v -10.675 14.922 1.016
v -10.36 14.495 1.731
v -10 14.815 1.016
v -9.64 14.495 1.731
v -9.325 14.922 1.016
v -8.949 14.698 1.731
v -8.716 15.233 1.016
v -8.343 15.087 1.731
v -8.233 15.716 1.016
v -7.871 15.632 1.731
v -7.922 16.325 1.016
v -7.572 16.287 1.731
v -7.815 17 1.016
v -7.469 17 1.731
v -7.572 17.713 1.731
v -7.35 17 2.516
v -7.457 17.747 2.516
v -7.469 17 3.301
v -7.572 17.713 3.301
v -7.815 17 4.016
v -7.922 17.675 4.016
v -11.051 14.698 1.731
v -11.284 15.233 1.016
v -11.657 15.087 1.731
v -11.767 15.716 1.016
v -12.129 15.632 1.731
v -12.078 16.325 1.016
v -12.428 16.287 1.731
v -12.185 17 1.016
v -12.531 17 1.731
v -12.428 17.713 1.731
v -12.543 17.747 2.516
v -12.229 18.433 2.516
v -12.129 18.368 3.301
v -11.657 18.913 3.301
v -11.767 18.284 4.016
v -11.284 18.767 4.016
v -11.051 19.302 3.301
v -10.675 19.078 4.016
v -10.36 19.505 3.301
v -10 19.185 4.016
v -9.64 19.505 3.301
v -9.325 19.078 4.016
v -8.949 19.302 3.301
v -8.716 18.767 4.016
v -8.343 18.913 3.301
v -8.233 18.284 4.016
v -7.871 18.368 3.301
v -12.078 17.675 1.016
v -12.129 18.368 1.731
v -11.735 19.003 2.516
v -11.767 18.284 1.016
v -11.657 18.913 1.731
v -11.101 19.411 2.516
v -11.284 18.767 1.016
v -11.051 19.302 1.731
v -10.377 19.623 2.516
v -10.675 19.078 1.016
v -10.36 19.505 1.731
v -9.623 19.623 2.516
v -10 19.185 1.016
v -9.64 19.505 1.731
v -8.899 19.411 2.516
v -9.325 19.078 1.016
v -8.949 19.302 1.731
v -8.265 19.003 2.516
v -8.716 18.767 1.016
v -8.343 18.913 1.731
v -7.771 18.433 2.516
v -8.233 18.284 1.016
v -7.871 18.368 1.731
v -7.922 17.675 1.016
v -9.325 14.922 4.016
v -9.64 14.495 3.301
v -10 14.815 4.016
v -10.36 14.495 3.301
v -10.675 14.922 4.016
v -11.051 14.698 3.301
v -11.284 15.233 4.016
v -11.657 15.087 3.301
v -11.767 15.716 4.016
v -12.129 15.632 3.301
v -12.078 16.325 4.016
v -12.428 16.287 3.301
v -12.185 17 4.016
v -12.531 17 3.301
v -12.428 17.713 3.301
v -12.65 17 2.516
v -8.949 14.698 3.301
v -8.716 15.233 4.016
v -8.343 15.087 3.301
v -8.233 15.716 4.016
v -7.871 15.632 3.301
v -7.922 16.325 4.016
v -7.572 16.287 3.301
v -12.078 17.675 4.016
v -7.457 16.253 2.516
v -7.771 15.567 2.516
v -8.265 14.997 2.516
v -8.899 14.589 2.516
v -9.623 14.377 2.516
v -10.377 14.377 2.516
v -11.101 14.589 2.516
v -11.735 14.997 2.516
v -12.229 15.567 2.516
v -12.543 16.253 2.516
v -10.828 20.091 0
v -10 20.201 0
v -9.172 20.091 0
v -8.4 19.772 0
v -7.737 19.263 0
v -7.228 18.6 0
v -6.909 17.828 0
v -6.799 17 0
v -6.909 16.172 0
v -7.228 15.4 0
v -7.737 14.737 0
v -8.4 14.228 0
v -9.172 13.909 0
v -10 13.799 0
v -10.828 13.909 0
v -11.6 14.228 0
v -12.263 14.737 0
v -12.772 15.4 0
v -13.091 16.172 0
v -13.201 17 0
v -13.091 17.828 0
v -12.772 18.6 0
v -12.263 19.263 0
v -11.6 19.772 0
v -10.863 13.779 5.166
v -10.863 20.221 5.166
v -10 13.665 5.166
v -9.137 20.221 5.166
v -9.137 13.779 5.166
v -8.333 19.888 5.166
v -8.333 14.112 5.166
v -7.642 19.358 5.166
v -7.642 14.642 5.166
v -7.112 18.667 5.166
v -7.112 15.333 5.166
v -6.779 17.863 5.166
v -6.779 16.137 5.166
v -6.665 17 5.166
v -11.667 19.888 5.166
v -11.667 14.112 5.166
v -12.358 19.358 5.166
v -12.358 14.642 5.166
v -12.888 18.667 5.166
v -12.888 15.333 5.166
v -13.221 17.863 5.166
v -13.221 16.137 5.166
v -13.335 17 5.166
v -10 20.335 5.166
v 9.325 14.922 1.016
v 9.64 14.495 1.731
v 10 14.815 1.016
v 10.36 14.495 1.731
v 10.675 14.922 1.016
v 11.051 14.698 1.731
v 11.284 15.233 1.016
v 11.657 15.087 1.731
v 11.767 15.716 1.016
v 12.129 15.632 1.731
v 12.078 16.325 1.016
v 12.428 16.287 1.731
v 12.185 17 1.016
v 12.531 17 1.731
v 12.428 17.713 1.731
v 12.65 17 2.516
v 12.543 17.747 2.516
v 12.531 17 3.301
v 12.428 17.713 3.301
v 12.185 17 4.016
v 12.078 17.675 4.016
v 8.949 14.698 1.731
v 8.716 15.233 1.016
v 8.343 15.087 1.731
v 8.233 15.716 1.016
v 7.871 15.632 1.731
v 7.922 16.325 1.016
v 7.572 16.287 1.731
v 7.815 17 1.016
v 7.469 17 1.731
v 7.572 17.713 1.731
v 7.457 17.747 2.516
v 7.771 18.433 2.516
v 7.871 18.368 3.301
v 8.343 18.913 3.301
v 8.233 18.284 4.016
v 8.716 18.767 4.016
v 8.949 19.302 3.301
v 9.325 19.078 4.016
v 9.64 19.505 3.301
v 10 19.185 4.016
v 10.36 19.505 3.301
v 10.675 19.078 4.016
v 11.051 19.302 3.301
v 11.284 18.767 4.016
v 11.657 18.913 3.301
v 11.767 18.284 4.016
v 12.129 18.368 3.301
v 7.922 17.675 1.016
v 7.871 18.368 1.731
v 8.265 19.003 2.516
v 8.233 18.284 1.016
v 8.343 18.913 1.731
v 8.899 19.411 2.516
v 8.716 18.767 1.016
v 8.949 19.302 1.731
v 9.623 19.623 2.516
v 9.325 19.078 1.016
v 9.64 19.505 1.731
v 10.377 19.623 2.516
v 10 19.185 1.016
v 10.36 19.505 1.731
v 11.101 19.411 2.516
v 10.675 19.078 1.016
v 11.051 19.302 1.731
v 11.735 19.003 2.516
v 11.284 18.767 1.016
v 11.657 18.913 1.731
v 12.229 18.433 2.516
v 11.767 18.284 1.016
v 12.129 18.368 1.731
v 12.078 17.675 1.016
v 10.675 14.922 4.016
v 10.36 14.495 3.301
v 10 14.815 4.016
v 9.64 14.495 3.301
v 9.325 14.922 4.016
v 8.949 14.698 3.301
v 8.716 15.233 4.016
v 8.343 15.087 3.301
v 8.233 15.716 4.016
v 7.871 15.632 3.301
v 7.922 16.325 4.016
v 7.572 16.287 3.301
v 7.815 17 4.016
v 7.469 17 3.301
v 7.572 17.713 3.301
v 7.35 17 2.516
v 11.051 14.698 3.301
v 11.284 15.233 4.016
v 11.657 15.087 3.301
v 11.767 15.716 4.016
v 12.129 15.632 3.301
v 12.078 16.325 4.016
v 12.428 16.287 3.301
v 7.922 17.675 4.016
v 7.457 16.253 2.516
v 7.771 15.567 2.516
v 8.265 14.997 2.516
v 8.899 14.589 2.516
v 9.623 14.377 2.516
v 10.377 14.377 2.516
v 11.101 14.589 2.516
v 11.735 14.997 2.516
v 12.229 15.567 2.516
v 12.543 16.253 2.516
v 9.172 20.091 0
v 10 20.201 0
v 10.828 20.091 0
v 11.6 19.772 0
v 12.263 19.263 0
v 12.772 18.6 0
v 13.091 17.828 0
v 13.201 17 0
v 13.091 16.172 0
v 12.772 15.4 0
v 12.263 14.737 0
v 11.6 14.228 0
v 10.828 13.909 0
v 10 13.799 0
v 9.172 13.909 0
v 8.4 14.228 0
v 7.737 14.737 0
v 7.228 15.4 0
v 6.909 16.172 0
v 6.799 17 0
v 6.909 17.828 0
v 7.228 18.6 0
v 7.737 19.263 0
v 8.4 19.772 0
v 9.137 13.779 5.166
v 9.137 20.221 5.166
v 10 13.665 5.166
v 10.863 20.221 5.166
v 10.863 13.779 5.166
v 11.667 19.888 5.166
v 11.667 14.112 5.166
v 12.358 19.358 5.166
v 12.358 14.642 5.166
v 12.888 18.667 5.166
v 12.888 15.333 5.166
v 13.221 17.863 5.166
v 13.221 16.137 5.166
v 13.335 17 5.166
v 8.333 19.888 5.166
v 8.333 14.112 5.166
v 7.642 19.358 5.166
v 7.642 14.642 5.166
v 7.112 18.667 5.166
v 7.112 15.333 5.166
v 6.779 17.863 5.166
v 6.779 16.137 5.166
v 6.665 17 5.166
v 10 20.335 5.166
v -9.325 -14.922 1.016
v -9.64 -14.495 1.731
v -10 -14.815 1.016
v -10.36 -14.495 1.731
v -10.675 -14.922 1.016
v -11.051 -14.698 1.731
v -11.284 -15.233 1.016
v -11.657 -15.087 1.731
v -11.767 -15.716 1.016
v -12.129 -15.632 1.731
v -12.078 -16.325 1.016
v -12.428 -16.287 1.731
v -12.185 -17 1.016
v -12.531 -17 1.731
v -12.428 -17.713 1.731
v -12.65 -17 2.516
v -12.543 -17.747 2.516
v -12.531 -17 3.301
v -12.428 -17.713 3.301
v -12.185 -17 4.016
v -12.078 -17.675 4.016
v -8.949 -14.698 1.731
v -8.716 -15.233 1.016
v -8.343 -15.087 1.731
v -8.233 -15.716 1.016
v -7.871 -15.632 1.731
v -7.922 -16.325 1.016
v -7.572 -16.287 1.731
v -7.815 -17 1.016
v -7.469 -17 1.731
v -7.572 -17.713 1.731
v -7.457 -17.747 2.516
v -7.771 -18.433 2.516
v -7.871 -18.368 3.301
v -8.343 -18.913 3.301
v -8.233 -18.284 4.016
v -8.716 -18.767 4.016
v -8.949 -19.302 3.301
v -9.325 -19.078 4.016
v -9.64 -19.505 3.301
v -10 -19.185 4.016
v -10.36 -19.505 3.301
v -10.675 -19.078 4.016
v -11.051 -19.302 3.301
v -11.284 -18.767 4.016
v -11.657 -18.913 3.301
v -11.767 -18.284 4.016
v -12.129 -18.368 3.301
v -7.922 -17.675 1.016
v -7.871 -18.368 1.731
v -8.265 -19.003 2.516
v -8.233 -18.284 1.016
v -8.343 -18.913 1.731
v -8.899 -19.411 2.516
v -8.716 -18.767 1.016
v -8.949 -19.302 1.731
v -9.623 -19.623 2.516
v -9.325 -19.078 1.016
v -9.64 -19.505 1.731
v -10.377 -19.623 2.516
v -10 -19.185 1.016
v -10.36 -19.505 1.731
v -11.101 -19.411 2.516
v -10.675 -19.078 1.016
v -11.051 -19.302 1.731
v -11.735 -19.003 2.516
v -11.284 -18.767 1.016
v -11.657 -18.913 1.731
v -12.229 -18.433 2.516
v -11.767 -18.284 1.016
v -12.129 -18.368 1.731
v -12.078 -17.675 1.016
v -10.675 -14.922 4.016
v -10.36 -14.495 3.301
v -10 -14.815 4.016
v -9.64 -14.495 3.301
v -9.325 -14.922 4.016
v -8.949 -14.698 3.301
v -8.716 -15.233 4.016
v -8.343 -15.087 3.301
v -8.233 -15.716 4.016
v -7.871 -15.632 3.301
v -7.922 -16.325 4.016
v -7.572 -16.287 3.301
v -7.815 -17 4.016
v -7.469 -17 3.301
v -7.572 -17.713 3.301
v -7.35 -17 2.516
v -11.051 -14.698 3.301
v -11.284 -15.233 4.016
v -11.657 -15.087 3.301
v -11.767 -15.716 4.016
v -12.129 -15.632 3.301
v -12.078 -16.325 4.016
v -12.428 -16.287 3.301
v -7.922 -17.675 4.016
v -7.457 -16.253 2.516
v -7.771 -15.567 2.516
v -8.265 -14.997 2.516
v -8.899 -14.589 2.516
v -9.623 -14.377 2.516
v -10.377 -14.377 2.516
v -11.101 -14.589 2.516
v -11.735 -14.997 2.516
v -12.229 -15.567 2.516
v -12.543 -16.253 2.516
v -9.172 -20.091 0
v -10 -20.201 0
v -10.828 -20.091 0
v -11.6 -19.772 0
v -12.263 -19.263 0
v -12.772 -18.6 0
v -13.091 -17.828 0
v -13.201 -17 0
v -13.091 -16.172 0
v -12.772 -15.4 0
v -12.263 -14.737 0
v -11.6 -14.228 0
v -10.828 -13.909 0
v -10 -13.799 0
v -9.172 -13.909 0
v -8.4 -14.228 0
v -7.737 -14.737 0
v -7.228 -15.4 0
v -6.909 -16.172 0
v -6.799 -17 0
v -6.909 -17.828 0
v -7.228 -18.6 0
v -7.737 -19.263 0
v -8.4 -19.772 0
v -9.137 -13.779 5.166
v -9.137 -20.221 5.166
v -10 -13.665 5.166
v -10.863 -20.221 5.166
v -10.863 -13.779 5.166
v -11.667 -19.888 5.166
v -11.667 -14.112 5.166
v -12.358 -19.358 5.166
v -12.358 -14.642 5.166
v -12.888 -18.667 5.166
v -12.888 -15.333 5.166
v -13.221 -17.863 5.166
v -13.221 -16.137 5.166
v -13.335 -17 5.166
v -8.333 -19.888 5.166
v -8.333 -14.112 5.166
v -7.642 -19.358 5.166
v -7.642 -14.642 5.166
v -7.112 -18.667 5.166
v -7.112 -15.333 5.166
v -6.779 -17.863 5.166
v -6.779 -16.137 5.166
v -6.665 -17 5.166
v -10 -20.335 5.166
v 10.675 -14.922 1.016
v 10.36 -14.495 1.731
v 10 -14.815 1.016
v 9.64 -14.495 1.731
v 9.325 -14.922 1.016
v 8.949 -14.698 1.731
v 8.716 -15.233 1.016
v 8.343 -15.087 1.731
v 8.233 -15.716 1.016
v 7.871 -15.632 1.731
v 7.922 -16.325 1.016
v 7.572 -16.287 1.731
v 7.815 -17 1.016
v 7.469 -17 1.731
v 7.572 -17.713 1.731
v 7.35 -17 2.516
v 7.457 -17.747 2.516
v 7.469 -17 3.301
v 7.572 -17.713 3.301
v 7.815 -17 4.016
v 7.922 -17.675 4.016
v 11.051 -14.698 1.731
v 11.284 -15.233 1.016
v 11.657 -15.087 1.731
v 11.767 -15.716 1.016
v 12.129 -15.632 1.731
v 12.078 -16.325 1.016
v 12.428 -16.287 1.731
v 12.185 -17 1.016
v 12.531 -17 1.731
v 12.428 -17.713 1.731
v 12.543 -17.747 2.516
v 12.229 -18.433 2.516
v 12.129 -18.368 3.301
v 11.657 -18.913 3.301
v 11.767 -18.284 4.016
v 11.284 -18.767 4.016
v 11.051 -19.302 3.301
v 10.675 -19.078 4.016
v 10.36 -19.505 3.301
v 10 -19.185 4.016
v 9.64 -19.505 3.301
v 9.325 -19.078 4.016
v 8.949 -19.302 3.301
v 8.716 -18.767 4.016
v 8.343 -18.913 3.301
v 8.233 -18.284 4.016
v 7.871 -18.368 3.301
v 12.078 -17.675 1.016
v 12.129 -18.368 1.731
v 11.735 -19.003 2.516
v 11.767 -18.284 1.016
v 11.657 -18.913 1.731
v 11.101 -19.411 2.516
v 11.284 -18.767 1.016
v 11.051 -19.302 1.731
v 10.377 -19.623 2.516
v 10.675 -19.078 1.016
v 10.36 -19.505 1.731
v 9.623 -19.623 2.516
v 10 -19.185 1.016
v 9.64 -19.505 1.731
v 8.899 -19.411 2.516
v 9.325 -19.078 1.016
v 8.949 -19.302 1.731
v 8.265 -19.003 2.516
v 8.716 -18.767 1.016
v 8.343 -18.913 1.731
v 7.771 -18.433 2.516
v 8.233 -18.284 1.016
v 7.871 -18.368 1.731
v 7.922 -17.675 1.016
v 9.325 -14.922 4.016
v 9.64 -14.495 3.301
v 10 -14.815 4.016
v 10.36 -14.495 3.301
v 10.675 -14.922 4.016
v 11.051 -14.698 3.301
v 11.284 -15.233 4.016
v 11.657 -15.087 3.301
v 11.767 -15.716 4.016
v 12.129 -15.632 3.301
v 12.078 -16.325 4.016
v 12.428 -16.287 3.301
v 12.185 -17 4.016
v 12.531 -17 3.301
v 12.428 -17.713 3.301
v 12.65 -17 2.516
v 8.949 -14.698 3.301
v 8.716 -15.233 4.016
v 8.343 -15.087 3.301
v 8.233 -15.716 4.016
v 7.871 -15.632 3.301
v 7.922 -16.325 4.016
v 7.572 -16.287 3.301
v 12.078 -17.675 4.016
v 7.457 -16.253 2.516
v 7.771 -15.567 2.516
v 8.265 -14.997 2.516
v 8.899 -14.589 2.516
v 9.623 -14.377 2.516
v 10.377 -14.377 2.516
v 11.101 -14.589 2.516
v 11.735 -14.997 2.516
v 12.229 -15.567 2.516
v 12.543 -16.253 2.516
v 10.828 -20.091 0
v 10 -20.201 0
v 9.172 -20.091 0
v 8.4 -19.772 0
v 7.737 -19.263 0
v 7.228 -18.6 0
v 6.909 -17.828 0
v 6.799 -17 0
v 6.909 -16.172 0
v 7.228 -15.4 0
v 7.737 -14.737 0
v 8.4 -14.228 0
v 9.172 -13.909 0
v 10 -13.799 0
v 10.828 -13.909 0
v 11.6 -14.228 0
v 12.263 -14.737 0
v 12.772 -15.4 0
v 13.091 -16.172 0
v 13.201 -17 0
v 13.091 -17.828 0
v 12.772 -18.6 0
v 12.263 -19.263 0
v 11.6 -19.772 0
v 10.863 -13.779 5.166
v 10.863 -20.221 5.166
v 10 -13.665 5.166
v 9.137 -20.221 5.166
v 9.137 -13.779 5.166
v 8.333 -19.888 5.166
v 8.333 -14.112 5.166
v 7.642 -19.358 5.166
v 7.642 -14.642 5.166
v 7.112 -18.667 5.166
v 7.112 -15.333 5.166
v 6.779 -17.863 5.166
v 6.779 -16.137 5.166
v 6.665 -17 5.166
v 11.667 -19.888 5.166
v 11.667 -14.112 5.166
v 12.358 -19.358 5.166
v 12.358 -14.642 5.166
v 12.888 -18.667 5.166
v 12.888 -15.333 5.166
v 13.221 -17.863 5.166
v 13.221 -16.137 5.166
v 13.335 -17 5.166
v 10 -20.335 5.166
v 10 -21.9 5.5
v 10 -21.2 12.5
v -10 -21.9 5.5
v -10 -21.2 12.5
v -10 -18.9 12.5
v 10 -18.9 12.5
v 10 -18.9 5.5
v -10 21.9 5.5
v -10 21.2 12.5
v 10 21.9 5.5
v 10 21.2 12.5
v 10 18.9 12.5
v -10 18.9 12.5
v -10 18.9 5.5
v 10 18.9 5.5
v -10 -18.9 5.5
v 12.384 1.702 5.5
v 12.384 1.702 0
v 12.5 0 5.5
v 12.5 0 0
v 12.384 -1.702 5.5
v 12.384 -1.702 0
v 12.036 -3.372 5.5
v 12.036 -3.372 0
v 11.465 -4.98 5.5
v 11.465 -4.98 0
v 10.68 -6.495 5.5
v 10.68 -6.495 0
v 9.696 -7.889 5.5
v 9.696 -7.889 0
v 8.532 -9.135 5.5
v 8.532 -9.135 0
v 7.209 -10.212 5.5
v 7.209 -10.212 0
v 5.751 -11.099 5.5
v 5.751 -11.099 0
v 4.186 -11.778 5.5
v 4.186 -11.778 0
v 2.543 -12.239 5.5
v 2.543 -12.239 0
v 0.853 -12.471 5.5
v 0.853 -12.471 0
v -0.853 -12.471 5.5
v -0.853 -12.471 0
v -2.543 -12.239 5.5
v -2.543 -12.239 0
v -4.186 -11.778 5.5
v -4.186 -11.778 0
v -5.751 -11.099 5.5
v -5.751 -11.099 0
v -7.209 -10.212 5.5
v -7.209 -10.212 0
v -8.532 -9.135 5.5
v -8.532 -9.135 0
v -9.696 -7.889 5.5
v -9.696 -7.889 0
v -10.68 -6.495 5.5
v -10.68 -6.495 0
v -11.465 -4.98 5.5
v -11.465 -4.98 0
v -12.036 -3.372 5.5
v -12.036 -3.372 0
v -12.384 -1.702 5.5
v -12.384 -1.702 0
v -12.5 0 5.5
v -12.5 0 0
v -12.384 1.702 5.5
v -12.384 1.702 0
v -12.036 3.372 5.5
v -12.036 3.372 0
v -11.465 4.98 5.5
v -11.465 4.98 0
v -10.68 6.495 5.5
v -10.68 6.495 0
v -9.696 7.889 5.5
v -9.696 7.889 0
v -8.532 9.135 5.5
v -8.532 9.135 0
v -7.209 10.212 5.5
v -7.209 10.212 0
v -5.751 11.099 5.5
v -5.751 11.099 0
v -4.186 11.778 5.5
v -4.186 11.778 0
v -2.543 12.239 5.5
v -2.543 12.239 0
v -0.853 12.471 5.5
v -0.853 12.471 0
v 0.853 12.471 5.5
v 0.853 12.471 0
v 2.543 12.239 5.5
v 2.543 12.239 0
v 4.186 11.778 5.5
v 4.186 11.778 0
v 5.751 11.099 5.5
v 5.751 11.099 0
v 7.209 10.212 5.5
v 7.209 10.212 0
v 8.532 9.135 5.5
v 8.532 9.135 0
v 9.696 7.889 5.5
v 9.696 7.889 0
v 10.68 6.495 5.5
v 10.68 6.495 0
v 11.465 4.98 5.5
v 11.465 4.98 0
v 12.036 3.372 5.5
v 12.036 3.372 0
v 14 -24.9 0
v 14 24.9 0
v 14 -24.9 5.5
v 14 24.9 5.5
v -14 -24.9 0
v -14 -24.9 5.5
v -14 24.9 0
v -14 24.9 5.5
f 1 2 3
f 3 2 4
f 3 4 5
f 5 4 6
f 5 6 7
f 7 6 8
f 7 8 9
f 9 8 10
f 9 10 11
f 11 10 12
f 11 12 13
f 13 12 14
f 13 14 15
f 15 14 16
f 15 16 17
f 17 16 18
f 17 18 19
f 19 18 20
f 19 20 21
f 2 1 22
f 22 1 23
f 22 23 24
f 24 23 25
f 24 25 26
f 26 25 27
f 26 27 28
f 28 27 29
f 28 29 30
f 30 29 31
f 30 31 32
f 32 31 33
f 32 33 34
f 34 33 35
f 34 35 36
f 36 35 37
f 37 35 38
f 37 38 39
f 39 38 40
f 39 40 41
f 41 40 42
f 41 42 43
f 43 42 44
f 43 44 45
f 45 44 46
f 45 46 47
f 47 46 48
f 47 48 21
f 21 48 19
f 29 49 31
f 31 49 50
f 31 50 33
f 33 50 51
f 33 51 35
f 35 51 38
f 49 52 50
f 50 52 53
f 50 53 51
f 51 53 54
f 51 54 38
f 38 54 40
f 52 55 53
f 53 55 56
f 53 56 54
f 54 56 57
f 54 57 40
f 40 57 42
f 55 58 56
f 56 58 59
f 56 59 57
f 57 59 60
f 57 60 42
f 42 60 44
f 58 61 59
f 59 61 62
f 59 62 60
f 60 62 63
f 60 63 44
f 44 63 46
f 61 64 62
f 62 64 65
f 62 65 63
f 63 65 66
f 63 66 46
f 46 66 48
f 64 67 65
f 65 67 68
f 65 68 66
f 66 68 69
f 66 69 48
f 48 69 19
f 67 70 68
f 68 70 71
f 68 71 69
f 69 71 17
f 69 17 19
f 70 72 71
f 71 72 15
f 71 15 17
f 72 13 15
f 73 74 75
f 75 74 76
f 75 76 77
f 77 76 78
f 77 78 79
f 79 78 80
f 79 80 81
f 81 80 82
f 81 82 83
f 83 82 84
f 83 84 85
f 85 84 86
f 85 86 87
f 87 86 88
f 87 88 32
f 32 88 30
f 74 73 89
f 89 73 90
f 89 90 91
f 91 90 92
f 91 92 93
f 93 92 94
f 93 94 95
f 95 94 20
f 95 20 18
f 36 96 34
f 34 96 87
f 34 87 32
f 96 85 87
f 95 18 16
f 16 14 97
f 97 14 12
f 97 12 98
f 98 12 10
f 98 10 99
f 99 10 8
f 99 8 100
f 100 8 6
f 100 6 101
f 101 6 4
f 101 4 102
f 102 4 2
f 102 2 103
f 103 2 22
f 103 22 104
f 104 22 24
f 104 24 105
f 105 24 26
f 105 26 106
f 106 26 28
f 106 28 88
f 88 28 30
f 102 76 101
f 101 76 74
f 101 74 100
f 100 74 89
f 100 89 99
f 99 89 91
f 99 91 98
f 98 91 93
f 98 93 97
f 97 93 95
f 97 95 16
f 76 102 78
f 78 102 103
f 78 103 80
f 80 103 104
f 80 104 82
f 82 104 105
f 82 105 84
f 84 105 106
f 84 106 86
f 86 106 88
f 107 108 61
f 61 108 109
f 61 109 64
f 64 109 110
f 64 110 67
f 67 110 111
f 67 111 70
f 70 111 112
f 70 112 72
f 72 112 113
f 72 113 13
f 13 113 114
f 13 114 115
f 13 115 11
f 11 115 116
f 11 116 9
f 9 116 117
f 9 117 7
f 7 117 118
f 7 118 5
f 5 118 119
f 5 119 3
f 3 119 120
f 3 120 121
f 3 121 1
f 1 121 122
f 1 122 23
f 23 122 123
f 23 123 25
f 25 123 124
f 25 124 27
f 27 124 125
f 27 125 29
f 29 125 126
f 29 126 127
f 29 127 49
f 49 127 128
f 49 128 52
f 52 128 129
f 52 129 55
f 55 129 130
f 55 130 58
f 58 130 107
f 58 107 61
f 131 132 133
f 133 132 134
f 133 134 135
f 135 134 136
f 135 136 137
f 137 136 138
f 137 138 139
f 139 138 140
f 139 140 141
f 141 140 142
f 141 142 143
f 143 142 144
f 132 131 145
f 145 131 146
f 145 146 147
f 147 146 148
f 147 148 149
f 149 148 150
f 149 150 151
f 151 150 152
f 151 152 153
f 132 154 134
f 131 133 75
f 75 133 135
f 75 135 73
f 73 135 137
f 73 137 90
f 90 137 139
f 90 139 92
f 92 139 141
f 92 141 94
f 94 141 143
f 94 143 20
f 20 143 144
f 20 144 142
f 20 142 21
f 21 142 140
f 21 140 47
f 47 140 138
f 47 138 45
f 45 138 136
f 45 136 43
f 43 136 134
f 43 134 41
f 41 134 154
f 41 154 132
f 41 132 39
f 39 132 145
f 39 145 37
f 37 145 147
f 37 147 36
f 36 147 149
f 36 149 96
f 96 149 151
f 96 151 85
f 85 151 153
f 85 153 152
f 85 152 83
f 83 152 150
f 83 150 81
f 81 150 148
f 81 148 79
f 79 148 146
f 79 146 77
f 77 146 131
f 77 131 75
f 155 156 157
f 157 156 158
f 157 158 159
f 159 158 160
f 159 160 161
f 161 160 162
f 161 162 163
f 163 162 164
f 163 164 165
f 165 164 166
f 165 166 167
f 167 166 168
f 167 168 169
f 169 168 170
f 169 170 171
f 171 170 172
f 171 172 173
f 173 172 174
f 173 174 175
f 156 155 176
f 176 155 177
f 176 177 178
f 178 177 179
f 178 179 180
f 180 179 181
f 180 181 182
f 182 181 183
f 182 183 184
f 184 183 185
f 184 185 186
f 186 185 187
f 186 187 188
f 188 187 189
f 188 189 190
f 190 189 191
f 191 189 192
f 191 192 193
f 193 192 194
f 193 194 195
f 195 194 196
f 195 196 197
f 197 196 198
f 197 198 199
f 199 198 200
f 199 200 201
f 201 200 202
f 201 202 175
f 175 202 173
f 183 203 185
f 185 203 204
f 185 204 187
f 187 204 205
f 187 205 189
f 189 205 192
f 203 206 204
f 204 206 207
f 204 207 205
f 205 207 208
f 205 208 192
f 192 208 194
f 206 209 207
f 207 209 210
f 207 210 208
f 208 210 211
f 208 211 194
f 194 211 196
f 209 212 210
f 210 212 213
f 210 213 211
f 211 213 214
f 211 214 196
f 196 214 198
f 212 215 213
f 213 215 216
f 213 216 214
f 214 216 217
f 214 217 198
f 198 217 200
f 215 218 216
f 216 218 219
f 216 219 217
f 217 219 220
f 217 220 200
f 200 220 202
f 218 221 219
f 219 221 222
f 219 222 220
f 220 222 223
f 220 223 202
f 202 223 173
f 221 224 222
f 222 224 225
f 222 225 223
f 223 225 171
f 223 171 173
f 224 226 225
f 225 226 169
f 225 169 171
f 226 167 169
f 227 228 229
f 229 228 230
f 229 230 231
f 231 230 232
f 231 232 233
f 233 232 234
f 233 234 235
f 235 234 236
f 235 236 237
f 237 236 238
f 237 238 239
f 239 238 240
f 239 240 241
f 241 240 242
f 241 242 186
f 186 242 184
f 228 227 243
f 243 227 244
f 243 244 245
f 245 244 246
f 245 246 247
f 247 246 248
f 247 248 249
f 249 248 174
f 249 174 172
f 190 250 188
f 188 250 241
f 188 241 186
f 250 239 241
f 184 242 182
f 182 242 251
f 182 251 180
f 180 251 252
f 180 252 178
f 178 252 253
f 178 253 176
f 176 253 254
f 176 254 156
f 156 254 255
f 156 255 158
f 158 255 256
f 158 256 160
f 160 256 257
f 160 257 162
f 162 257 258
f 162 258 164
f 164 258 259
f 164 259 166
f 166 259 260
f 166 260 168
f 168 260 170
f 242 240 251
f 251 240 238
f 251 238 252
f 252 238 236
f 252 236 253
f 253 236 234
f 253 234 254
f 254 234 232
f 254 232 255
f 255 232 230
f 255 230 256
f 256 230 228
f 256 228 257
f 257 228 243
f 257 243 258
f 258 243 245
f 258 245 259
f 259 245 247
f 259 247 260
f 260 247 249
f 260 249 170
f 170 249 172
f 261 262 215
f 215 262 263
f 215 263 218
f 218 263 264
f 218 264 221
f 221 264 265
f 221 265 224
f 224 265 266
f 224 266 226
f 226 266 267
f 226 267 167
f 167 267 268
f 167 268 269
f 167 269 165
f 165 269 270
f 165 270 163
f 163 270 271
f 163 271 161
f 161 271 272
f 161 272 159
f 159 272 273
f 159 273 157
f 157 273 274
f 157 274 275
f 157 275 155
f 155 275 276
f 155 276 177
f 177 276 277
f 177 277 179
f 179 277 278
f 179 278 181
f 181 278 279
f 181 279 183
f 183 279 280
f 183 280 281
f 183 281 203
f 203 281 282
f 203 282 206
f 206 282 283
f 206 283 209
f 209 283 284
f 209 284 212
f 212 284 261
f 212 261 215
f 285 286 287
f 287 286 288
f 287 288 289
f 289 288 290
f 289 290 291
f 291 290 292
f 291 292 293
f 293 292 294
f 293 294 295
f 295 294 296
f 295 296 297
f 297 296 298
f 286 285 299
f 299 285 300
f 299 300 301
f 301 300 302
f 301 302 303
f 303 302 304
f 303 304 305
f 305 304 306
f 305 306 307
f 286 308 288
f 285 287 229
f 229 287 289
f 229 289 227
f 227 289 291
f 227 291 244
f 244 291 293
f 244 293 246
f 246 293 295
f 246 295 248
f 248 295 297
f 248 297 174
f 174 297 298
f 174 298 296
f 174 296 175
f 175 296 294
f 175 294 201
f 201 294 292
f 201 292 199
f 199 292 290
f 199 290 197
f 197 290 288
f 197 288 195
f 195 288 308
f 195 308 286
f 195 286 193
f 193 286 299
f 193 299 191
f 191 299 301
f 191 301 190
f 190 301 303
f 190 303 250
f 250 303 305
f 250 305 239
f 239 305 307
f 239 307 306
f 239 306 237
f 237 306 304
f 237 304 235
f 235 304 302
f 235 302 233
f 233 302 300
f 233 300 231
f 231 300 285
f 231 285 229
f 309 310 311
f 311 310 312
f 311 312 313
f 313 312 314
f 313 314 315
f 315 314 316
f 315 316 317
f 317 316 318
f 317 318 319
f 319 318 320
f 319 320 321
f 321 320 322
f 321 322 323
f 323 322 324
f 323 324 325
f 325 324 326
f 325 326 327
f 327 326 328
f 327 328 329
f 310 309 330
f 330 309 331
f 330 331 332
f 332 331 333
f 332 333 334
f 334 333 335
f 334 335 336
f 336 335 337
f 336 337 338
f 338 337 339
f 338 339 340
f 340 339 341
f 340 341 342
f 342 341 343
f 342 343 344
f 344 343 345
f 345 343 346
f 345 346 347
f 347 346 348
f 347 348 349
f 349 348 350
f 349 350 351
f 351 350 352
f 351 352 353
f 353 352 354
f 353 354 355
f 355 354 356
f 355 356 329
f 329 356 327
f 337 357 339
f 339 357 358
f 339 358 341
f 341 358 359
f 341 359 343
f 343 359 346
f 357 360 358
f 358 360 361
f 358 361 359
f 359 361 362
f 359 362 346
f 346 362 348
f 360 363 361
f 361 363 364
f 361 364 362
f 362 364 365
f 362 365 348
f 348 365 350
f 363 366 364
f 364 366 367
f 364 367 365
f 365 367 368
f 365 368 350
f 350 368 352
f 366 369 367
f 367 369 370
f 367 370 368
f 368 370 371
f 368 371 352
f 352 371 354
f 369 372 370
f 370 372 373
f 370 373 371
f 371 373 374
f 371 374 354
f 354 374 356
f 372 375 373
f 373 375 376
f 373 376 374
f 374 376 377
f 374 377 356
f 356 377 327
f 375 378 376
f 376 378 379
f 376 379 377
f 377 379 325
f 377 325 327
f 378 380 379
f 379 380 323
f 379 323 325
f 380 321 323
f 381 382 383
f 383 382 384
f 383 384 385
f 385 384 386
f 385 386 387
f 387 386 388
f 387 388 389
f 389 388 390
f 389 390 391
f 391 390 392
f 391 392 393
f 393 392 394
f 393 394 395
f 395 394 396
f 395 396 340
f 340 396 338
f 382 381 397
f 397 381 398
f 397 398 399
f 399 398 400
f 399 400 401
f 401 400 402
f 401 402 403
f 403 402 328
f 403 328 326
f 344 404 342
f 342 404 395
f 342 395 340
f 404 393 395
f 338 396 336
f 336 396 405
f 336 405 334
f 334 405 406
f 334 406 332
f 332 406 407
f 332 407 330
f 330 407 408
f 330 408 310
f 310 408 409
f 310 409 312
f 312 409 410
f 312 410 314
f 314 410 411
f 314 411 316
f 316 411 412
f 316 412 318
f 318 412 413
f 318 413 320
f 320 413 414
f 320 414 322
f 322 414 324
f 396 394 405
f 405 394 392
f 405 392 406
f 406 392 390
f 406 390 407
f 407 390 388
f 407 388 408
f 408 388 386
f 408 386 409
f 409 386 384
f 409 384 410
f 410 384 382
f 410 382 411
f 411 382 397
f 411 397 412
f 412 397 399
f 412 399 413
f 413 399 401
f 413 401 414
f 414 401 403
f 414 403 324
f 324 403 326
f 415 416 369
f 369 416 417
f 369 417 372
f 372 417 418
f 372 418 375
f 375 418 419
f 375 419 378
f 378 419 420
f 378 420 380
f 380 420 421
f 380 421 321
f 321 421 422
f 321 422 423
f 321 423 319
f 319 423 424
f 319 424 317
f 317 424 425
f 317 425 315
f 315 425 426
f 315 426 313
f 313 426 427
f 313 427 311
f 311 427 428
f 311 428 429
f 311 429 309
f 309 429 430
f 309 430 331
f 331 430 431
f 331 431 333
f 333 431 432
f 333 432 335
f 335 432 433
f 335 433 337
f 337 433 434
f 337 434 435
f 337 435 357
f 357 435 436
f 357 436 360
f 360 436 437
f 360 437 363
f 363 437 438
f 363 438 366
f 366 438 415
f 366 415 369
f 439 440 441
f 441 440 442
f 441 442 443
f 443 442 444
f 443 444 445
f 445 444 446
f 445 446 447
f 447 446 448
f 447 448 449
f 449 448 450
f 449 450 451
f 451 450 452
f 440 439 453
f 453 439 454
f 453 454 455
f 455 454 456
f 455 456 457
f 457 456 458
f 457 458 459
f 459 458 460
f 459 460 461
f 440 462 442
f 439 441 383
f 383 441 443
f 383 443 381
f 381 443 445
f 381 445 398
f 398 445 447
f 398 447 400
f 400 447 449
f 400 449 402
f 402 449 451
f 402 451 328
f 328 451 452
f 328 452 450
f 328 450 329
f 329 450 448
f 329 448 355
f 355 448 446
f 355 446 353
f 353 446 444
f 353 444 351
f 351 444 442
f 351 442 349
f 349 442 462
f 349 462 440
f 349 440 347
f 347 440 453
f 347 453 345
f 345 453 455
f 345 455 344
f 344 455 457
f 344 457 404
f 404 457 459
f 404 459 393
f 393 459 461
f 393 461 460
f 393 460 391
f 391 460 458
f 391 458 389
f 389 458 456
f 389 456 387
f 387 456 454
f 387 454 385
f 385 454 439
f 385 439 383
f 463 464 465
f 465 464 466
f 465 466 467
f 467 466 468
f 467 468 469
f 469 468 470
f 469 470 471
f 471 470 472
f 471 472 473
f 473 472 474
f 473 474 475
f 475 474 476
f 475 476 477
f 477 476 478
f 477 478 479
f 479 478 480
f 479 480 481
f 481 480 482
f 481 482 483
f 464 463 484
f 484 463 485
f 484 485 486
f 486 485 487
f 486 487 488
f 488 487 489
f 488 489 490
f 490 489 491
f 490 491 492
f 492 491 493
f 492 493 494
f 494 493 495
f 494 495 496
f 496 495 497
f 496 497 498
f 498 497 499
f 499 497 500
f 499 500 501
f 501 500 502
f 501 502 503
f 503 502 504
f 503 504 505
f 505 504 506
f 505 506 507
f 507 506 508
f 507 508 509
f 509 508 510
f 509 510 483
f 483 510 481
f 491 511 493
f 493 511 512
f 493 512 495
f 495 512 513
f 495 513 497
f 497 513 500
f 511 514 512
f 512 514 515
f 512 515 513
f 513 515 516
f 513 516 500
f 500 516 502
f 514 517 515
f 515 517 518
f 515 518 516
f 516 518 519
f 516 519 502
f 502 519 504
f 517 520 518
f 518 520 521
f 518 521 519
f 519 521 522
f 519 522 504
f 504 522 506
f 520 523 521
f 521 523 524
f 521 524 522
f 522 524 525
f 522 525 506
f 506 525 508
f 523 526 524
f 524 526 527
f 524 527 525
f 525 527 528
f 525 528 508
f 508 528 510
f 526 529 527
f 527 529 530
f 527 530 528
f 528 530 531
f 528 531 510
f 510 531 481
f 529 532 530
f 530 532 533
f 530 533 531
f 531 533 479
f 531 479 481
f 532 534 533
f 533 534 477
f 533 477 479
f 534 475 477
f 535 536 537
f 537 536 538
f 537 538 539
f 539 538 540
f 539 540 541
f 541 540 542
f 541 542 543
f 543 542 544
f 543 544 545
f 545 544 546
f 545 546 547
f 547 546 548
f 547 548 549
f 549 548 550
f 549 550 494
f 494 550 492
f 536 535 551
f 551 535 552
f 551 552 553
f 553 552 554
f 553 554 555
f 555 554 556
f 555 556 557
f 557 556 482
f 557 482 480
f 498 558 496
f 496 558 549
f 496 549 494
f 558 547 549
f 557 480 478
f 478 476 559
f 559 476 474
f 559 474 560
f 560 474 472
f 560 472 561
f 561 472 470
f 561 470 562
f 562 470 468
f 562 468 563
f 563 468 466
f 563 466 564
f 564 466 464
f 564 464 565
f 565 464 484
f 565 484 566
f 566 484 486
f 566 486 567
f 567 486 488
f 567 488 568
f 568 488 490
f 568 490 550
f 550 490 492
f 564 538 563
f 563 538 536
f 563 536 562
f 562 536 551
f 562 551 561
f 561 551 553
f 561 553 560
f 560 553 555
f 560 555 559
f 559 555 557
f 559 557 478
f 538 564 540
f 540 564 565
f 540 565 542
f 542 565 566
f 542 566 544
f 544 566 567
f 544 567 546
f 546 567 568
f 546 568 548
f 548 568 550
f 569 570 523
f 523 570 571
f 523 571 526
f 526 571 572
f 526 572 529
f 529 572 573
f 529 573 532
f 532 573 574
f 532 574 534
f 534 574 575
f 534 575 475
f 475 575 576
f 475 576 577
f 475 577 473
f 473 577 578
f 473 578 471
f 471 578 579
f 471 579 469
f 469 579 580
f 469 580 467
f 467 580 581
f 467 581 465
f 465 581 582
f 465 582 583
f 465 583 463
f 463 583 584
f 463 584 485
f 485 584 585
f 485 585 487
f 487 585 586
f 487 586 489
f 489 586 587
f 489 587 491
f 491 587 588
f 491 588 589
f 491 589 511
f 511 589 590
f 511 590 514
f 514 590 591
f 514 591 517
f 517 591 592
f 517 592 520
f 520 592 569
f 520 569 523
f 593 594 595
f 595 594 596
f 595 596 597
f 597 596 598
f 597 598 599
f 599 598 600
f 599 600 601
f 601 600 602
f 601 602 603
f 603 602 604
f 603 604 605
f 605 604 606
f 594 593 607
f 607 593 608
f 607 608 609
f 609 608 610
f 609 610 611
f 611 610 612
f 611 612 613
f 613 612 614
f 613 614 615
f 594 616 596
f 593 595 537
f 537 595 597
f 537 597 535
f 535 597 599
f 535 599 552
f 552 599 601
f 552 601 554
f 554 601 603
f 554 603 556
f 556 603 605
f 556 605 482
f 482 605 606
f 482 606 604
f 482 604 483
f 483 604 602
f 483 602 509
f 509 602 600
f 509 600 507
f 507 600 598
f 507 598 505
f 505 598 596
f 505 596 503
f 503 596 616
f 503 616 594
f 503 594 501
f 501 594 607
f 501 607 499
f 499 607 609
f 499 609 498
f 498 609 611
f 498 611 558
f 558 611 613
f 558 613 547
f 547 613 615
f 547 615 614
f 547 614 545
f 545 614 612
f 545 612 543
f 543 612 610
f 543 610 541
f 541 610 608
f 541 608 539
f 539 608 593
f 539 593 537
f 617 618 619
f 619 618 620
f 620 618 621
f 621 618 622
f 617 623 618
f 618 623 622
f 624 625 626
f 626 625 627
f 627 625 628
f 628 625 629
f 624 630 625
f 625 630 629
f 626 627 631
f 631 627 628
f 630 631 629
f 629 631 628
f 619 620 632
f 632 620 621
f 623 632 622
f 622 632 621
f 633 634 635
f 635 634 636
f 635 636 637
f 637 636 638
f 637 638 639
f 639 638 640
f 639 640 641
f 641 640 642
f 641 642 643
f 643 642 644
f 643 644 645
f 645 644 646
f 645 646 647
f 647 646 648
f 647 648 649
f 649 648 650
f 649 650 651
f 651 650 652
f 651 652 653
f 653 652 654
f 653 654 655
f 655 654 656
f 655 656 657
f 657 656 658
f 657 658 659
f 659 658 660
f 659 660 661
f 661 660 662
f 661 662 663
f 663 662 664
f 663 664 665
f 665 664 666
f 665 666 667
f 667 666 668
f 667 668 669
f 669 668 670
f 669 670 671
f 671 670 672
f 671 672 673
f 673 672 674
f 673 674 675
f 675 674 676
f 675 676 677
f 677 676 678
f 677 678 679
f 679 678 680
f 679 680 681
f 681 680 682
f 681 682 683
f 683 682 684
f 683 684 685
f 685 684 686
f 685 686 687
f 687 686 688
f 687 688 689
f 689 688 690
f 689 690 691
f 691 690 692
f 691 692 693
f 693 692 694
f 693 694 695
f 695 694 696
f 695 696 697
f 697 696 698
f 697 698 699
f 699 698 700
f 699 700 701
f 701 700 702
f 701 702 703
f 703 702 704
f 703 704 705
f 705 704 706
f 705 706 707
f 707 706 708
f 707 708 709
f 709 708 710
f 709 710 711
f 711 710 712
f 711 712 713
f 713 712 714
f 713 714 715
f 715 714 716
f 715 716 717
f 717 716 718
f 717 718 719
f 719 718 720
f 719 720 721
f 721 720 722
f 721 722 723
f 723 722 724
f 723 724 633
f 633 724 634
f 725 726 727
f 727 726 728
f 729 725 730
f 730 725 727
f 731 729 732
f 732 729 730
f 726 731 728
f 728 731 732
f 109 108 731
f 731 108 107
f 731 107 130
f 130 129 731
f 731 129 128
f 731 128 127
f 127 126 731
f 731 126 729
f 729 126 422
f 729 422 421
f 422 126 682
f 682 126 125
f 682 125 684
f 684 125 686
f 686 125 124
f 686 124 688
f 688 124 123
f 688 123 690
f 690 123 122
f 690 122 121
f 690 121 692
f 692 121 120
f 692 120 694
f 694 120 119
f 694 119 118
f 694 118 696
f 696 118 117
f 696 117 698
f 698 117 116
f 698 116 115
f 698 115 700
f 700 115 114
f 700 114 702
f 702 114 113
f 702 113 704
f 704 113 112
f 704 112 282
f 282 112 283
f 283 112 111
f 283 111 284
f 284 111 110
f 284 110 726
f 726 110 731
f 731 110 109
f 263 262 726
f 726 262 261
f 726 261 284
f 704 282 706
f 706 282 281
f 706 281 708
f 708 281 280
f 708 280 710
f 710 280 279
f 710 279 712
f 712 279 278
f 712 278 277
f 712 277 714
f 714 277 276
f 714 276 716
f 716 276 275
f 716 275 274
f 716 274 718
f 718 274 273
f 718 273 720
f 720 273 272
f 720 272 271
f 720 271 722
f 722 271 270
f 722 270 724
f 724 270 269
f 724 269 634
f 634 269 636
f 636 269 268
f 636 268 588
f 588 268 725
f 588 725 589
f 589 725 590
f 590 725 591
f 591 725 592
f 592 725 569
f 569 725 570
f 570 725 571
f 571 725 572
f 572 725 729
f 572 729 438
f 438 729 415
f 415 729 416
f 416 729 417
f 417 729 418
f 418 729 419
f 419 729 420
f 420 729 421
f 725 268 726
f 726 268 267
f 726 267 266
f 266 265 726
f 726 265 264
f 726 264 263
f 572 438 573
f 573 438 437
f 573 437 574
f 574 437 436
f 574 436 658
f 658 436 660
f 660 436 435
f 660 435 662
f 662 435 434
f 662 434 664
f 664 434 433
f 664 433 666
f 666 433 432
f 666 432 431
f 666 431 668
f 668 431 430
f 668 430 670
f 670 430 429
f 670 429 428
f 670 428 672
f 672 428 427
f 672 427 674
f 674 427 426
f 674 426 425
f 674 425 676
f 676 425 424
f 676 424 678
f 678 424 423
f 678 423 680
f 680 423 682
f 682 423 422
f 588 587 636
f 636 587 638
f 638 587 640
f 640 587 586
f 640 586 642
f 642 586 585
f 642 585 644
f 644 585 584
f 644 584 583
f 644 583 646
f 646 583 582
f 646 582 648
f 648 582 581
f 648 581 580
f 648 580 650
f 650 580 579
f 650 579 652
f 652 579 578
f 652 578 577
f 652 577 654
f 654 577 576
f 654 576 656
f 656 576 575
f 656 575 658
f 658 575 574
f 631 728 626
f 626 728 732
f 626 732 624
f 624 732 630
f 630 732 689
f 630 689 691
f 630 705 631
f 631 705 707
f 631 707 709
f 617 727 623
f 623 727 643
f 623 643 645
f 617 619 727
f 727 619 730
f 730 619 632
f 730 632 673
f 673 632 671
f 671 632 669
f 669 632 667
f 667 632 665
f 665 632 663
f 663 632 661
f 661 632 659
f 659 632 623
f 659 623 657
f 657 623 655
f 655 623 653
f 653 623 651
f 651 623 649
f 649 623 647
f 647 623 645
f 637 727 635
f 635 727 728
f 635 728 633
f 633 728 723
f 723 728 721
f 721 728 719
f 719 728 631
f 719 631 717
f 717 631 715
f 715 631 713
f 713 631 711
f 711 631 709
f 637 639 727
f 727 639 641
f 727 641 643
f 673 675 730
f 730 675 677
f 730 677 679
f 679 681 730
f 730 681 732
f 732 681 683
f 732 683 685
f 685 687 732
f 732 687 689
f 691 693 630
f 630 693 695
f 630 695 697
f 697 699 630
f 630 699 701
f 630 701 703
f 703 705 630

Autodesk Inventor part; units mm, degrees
ref_plane "XZ Plane" through (0, 0, 0) normal (0, 1, 0) x (-1, 0, 0)
ref_plane "XY Plane" through (0, 0, 0) normal (0, 0, 1) x (1, 0, 0)
sketch "Sketch1" plane through (0, 0, 0) normal (0, 0, 1) x (1, 0, 0)
  line L0 (0, -35.8) -> (0, 40.5) construction
  line L1 (0, 0) -> (11.1575, 11.1575) construction
  line L2 (0, 0) -> (15.7791, 0) construction
  line L3 (0, 24.9) -> (14, 24.9)
  line L4 (14, 24.9) -> (14, 21.2415)
  line L5 (2.8009, -24.9) -> (14, -24.9)
  line L6 (14, -24.9) -> (14, -21.2415)
  line L7 (0, 24.9) -> (-14, 24.9)
  line L8 (-14, 24.9) -> (-14, 21.2415)
  line L9 (2.8009, -24.9) -> (-14, -24.9)
  line L10 (-14, -24.9) -> (-14, -21.2415)
  circle A0 centre (0, 0) radius 12.5
  line L11 (14, 24.9) -> (14, -21.2415)
  line L12 (-14, 21.2415) -> (-14, -21.2415)
  dimension "d0" = 45
  dimension "d5" = 25
  dimension "d19" = 28
extrude "Extrusion1" add sketch "Sketch1" along normal blind 5.5
sketch "Sketch2" plane through (0, 0, 5.5) normal (0, 0, 1) x (1, 0, 0)
  circle A0 centre (0, 0) radius 12.5 projected
  line L0 (14, 24.9) -> (-14, 24.9) projected
  line L1 (-14, 24.9) -> (-14, -24.9) projected
  line L2 (-14, -24.9) -> (14, -24.9) projected
  line L3 (14, -24.9) -> (14, 24.9) projected
  line L4 (-37.0494, 0) -> (27.1749, 0) construction
  line L5 (0, -35.8) -> (0, 40.5) construction
  line L6 (-10, 21.9) -> (10, 21.9)
  line L7 (10, 21.9) -> (10, 18.9)
  line L8 (10, 18.9) -> (-10, 18.9)
  line L9 (-10, 18.9) -> (-10, 21.9)
  line L10 (-10, -21.9) -> (10, -21.9)
  line L11 (10, -21.9) -> (10, -18.9)
  line L12 (10, -18.9) -> (-10, -18.9)
  line L13 (-10, -18.9) -> (-10, -21.9)
  dimension "d8" = 20
  dimension "d9" = 3
  dimension "d10" = 3
  dimension "d20" = 18.9
  dimension "d21" = 18.9
extrude "Extrusion2" add sketch "Sketch2" along normal blind 7 contours L6 L7 L8 L9 | L13 L12 L11 L10
chamfer "Fase1" distance 0.7 distance2 7 1 edges at (0, 21.9, 12.5) measured on face at (-3.3333, 19.9, 12.5)
chamfer "Fase2" distance 0.7 distance2 7 1 edges at (0, -21.9, 12.5) measured on face at (-3.3333, -19.9, 12.5)
sketch "Skizze4" plane through (0, 0, 0) normal (0, 0, -1) x (-1, 0, 0)
  line L0 (10, -18.9) -> (-10, -18.9) projected
  line L1 (-10, 18.9) -> (10, 18.9) projected
  line L2 (10, -18.9) -> (-10, -18.9)
  line L3 (-10, -18.9) -> (-10, 18.9) construction
  line L4 (-10, 18.9) -> (10, 18.9)
  line L5 (10, 18.9) -> (10, -18.9)
  line L6 (-10, -21.9) -> (10, -21.9) projected
  line L7 (-10, -18.9) -> (10, -18.9)
  line L8 (10, -18.9) -> (10, -21.9)
  line L9 (10, -21.9) -> (-10, -21.9)
  line L10 (-10, -21.9) -> (-10, -18.9)
  point P0 (0, 0)
  point P1 (10, -20.4)
  point P2 (0, 0)
  point P3 (-10, -17)
  dimension "d22" = 18.9
  dimension "d23" = 20
  dimension "d24" = 3
  dimension "d33" = 17
ref_plane "Arbeitsebene2" through (10, -17, 0) normal (1, 0, 0) x (0, 1, 0)
sketch "Skizze5" plane through (10, -20.4, 0) normal (0, 0, -1) x (0, 1, 0)
  line L0 (50, 0.0005) -> (0, 0.0005)
  point P0 (20.4, -10)
  point P1 (25, 0)
  point P2 (40, 8)
  point P3 (6.6949, -37.8745)
  point P4 (0, 0.0005)
sketch "Skizze6" plane through (10, -17, 0) normal (1, 0, 0) x (0, 1, 0)
  line L0 (50, -0.1341) -> (0, -0.1341)
  line L1 (-5, 0.0159) -> (-5, 5.0159)
  line L2 (0, -0.1341) -> (0, 5.1659)
  line L3 (0, 1.0159) -> (2.1846, 1.0159)
  line L4 (-2.3, -1.5874) -> (-2.3, 1.1997)
  line L5 (0, -1.5874) -> (0, -0.1341)
  arc A0 (-2.3, 3.8322) -> (-0.8789, 0.0159) centre (0, 2.5159) ccw
  arc A1 (0, -0.1341) -> (0, 5.1659) centre (0, 2.5159) ccw
  line L6 (2.1846, 1.0159) -> (3.3346, -0.1341)
  line L7 (3.3346, -0.1341) -> (0, -0.1341)
  line L8 (0, 2.5159) -> (1.8859, 2.5159)
  line L9 (2.1846, 4.0159) -> (3.3346, 5.1659)
  line L10 (3.3346, 5.1659) -> (0, 5.1659)
  point P0 (17, 0)
  point P1 (25, 0)
  point P2 (40, 8)
  point P3 (6.6949, -37.8745)
  point P4 (0, -0.1341)
  dimension "d34" = 2.65
  dimension "d35" = 5
  dimension "d36" = 2.3
  dimension "d37" = 135
  dimension "d38" = 1.5
  dimension "d39" = 2.65
revolve "Umdrehung2" cut sketch "Skizze6" angle 360 about axis through (10, -17, -0.1341) along (0, 0, 1)
mirror "Spiegeln3" about plane through (0, 0, 0) normal (1, 0, 0) of "Umdrehung2"
mirror "Spiegeln4" about plane through (0, 0, 0) normal (0, 1, 0) of "Umdrehung2", "Spiegeln3"
properties part number "20_Cube_insert_Sample_holder"
